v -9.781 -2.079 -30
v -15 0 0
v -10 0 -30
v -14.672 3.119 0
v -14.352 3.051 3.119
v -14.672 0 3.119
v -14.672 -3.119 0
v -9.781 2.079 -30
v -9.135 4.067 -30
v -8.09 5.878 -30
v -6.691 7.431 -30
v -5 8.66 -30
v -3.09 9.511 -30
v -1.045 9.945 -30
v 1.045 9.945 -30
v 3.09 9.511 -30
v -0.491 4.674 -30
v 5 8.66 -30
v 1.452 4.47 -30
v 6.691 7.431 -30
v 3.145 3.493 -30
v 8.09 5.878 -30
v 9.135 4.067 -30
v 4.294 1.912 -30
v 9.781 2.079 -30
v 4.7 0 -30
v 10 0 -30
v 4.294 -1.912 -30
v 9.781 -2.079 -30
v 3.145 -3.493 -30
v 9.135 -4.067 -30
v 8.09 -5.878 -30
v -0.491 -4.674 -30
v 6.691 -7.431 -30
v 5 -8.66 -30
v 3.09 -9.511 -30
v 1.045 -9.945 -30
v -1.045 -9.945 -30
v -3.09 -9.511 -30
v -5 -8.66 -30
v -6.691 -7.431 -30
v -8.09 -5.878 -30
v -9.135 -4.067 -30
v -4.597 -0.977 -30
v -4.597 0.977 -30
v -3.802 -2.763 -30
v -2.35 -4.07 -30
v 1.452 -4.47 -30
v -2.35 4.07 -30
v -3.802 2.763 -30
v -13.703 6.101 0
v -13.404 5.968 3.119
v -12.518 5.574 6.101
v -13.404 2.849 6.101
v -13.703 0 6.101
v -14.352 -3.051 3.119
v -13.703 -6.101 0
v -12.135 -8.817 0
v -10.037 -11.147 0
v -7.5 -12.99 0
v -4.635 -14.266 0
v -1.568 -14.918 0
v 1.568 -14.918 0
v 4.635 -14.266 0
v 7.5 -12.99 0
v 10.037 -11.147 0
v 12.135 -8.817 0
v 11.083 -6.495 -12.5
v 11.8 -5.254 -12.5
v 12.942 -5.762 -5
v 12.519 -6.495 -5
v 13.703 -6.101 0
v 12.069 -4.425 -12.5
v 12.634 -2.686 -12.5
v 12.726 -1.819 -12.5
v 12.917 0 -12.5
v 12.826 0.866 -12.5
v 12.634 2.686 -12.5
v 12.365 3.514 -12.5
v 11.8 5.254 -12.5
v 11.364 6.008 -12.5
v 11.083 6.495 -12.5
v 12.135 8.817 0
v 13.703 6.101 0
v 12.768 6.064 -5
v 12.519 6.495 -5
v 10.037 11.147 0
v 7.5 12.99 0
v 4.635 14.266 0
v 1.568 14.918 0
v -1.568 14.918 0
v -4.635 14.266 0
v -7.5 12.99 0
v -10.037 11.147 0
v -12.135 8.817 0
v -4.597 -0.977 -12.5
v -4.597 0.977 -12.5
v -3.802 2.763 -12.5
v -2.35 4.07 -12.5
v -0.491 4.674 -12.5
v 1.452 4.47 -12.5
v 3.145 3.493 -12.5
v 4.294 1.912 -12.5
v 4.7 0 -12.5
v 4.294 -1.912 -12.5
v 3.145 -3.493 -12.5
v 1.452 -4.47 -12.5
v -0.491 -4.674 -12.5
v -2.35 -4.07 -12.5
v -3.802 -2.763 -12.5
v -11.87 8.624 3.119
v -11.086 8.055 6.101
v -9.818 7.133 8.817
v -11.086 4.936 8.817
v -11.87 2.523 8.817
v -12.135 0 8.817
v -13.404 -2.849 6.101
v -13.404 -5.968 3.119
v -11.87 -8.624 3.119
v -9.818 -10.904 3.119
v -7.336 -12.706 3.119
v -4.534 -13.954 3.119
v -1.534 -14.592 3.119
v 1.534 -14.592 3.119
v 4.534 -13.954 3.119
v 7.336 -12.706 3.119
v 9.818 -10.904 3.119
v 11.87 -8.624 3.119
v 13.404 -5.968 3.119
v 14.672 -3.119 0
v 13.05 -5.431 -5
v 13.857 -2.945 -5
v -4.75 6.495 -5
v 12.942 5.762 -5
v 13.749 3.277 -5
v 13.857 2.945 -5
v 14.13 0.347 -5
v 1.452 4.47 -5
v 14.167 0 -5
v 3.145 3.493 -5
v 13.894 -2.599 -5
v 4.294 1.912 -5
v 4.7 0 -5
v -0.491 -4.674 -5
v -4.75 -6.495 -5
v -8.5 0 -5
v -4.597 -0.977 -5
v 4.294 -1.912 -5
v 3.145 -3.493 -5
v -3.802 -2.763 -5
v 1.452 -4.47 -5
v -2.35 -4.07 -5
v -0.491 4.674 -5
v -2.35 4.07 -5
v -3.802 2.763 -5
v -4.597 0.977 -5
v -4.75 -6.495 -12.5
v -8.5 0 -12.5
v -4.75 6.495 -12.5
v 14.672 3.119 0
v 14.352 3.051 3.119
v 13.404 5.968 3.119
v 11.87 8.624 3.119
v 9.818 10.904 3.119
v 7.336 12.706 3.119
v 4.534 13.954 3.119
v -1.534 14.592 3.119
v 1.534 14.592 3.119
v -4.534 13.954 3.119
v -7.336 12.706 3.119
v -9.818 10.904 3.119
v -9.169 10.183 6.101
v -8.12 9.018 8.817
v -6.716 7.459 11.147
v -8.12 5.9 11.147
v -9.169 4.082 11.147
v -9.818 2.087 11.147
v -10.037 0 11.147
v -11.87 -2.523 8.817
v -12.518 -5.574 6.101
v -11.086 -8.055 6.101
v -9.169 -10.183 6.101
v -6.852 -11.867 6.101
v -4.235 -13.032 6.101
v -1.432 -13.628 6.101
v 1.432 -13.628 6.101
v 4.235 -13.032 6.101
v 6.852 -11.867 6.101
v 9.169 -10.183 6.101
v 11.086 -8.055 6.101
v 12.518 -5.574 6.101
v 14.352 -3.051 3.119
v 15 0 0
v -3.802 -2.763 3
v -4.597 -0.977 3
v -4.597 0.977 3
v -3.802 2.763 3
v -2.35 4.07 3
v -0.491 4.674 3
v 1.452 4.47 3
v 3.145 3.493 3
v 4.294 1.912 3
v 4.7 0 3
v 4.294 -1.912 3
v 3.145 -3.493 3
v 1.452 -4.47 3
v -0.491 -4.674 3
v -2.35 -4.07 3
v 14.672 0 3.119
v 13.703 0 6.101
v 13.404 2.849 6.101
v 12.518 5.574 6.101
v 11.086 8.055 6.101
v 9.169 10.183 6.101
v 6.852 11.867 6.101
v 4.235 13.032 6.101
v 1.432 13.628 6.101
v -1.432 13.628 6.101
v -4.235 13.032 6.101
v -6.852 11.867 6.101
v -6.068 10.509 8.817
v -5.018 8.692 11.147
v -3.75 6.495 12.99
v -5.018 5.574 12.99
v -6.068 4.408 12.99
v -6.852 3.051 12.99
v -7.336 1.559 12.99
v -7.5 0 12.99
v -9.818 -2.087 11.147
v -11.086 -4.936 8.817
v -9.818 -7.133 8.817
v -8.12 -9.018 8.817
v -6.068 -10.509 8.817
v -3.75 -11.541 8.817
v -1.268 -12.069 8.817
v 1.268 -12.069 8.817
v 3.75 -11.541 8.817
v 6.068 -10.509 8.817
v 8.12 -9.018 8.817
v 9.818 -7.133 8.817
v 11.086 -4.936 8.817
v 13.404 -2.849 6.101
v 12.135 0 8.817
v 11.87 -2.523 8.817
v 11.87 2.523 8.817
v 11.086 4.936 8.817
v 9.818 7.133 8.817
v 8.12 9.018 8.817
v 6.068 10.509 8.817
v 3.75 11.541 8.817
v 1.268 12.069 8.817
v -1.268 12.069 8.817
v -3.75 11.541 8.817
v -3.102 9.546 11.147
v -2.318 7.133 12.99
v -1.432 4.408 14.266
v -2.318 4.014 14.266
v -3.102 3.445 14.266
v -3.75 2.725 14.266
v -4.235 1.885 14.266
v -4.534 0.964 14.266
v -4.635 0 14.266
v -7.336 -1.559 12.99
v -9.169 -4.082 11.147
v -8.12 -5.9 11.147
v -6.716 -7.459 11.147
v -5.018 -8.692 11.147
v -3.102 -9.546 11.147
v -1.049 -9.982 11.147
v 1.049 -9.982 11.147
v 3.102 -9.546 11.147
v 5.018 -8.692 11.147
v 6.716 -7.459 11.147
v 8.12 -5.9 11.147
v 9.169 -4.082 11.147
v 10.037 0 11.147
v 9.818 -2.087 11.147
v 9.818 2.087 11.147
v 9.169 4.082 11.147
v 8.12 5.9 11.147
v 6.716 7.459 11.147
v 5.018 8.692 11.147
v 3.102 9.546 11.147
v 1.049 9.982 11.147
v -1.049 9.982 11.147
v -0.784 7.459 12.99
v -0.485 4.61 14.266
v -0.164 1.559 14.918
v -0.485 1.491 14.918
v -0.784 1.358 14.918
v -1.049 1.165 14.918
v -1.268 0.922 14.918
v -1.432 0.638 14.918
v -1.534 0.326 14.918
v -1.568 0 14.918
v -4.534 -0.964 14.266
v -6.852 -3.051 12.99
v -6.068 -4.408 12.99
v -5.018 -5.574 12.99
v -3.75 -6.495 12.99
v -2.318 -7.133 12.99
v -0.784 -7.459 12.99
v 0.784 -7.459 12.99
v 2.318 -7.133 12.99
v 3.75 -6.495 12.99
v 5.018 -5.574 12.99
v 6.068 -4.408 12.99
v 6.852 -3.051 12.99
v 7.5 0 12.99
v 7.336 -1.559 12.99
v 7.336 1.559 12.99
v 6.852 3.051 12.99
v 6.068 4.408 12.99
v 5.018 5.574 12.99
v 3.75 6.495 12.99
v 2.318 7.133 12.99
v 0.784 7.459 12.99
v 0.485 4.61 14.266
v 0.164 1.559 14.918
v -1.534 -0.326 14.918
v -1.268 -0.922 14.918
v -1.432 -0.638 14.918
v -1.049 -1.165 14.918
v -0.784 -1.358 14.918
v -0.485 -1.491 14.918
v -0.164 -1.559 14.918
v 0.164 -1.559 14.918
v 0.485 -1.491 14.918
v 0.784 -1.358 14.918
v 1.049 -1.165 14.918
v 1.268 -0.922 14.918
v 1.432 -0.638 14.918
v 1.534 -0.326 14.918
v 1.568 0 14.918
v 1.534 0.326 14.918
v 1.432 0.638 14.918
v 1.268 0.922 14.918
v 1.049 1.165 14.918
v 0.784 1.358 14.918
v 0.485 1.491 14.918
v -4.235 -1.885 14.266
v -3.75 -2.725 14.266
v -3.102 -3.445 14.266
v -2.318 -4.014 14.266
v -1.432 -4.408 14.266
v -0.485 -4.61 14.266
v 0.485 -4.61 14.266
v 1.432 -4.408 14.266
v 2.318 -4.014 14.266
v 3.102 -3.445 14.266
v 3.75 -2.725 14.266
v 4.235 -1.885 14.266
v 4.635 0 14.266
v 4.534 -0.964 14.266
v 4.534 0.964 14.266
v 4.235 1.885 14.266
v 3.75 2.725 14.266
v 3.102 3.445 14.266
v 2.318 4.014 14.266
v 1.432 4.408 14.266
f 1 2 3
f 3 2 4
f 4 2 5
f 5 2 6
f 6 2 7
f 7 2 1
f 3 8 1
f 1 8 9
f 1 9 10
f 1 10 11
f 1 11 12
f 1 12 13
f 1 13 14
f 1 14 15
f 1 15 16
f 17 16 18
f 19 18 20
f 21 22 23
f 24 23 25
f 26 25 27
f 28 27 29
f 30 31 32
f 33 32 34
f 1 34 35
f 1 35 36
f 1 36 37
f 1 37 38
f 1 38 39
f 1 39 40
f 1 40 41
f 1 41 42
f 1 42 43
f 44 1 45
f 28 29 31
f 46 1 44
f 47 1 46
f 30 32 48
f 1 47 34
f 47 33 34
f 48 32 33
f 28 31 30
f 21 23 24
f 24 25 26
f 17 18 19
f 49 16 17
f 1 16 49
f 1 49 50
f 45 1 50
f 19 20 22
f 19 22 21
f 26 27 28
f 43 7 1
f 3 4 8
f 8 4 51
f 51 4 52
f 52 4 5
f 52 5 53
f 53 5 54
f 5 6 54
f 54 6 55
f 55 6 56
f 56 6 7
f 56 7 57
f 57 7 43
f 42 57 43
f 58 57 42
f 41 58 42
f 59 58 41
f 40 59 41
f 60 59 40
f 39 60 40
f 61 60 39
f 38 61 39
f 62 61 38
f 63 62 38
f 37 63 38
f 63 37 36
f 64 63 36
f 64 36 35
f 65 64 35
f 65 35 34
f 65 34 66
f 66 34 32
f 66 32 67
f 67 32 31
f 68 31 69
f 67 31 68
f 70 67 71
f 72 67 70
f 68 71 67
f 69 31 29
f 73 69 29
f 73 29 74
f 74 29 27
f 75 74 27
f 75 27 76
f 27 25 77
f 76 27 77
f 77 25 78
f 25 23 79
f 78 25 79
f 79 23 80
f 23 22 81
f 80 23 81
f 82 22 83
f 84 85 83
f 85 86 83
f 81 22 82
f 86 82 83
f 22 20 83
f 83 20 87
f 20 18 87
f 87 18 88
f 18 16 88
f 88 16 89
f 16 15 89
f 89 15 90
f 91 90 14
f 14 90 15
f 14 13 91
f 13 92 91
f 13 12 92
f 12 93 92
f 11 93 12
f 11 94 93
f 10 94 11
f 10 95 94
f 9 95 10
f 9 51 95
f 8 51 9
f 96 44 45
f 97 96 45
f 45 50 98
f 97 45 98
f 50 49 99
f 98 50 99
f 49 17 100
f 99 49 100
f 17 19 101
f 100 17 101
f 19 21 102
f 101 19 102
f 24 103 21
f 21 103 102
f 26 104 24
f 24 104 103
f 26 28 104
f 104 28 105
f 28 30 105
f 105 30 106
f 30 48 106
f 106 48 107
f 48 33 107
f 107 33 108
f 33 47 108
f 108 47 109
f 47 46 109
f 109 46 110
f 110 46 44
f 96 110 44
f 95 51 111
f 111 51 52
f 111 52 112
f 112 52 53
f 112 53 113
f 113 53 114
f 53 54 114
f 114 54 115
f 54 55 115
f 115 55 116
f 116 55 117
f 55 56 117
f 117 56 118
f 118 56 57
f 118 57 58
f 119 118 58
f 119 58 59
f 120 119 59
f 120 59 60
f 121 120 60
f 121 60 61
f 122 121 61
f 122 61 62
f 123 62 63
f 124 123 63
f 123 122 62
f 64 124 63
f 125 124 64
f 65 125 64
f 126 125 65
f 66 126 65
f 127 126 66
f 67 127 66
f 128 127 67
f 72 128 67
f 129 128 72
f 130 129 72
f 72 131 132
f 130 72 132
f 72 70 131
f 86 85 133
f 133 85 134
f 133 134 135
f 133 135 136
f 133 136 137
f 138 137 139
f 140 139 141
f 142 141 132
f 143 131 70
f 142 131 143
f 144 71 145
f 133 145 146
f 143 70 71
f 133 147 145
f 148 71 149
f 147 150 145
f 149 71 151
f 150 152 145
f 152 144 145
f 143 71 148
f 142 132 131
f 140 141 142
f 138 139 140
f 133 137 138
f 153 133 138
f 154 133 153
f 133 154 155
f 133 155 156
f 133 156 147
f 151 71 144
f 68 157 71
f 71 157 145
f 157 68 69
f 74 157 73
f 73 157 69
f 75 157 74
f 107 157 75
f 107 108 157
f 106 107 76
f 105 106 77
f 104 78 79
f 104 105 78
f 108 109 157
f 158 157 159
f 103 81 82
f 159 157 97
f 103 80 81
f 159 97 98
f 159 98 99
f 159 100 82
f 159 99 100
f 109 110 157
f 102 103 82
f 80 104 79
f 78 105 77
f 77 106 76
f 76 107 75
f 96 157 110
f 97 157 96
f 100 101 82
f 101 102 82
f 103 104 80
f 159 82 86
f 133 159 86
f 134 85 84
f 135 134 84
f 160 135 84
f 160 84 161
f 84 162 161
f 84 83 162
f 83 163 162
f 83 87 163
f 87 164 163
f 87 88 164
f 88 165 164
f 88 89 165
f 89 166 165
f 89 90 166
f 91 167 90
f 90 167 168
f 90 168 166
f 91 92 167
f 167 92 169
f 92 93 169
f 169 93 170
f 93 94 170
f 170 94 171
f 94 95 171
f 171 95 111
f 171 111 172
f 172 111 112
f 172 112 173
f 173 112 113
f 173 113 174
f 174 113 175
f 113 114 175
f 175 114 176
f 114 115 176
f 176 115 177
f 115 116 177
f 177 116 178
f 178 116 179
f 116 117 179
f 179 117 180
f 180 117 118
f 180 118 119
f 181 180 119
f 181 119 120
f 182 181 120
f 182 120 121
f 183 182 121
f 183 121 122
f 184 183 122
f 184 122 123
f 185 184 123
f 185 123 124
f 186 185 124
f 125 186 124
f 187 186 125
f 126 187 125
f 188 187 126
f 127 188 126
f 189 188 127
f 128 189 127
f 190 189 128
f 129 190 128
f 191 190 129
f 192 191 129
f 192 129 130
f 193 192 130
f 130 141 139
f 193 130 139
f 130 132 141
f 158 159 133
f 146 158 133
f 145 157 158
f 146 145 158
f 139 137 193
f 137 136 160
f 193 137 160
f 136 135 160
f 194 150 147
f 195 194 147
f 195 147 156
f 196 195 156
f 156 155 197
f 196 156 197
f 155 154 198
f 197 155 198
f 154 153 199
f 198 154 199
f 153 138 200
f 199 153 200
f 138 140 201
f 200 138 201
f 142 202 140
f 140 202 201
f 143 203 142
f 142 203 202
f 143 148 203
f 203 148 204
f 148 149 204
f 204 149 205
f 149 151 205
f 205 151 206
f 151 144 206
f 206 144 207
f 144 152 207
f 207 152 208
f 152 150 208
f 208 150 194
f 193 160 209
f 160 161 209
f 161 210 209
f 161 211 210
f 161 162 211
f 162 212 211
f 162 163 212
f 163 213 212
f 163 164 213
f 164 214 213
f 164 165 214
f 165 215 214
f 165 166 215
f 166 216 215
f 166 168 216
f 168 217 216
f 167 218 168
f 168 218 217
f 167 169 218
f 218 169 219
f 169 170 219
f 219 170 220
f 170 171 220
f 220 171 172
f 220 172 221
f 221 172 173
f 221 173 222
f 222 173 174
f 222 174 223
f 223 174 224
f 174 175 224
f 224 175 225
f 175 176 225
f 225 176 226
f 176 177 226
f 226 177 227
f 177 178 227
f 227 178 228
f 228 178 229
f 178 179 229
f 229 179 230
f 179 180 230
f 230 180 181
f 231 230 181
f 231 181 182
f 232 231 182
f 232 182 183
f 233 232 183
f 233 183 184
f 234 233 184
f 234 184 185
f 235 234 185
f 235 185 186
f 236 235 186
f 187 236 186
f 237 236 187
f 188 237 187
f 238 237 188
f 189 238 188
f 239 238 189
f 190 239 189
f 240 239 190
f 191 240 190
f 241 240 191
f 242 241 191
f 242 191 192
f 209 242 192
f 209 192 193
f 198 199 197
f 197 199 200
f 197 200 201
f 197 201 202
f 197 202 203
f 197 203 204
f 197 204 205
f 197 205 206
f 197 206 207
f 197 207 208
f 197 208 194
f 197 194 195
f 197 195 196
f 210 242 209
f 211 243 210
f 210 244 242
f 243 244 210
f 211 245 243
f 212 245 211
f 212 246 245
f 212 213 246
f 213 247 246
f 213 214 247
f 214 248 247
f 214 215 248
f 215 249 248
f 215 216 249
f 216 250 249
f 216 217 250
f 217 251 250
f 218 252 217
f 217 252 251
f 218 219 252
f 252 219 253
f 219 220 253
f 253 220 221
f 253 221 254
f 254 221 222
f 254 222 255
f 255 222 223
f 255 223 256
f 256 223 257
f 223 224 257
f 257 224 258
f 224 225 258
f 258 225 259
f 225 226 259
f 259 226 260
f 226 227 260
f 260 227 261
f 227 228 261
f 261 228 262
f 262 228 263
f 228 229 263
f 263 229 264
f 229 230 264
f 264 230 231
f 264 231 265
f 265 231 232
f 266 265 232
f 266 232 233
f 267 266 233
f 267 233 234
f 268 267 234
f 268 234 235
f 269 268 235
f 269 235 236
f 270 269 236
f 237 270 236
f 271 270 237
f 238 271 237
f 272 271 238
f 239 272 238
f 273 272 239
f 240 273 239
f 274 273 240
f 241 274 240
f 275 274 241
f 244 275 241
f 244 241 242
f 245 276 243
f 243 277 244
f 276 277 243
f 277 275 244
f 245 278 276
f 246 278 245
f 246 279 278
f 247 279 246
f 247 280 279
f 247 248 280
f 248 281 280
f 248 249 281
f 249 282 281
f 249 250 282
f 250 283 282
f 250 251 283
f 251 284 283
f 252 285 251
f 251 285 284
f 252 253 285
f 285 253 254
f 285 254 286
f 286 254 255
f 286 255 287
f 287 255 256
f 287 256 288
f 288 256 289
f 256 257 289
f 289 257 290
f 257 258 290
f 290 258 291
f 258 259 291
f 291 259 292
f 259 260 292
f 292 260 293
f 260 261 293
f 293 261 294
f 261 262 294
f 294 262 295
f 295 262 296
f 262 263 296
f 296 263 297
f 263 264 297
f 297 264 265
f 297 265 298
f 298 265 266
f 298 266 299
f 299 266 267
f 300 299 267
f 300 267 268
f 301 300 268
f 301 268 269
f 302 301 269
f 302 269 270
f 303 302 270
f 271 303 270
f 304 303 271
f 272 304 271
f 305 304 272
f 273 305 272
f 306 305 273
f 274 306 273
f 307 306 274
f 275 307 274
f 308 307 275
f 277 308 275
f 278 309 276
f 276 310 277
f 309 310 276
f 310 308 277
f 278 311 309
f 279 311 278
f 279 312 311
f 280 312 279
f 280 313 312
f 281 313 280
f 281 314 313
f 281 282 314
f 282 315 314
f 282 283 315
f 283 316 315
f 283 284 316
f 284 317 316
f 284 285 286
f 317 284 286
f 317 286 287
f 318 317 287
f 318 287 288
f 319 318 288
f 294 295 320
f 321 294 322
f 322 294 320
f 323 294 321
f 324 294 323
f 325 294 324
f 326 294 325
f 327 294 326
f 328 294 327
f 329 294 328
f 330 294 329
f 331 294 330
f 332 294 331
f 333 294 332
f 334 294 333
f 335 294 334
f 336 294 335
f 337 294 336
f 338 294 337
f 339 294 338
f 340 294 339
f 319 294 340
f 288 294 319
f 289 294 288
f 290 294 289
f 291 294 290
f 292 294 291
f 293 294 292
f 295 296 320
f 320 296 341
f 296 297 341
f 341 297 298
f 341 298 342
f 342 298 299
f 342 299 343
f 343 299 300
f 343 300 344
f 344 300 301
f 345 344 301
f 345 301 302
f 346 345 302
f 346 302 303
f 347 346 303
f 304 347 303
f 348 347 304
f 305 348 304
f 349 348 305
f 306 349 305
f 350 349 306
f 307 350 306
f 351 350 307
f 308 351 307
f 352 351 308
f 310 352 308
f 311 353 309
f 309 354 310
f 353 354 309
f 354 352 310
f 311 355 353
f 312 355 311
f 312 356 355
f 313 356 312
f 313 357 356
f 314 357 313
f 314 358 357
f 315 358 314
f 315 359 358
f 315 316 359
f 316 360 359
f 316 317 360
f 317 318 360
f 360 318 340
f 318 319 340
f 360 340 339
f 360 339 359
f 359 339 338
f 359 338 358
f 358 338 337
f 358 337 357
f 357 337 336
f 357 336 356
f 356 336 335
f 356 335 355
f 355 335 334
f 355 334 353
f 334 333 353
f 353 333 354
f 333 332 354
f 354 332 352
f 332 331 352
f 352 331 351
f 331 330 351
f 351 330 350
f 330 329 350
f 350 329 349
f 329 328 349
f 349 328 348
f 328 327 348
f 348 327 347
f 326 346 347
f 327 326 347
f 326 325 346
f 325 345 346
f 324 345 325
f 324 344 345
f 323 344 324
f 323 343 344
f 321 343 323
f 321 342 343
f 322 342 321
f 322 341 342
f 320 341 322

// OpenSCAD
module nut(){
// Nut (M8)
cylinder(r=15/2, h=7.5, $fn = 6, center=[0,0]);
}

rotate([180,0,0]){
difference(){
union(){
difference(){
// Main cylinder
cylinder(r1=15,r2=10,h=30);

// Nut hole
translate([0,0,5])
union(){
translate([20,0,0])
nut();
translate([10,0,0])
nut();
translate([5,0,0])
nut();
nut();
translate([-1,0,0])
nut();
}

}

difference(){
sphere(r=15);
translate([-50,-50,0]) cube(100);
}
}

// Rod hole
translate([0,0,-3])
cylinder(r=4.7,h=100);

}
}
